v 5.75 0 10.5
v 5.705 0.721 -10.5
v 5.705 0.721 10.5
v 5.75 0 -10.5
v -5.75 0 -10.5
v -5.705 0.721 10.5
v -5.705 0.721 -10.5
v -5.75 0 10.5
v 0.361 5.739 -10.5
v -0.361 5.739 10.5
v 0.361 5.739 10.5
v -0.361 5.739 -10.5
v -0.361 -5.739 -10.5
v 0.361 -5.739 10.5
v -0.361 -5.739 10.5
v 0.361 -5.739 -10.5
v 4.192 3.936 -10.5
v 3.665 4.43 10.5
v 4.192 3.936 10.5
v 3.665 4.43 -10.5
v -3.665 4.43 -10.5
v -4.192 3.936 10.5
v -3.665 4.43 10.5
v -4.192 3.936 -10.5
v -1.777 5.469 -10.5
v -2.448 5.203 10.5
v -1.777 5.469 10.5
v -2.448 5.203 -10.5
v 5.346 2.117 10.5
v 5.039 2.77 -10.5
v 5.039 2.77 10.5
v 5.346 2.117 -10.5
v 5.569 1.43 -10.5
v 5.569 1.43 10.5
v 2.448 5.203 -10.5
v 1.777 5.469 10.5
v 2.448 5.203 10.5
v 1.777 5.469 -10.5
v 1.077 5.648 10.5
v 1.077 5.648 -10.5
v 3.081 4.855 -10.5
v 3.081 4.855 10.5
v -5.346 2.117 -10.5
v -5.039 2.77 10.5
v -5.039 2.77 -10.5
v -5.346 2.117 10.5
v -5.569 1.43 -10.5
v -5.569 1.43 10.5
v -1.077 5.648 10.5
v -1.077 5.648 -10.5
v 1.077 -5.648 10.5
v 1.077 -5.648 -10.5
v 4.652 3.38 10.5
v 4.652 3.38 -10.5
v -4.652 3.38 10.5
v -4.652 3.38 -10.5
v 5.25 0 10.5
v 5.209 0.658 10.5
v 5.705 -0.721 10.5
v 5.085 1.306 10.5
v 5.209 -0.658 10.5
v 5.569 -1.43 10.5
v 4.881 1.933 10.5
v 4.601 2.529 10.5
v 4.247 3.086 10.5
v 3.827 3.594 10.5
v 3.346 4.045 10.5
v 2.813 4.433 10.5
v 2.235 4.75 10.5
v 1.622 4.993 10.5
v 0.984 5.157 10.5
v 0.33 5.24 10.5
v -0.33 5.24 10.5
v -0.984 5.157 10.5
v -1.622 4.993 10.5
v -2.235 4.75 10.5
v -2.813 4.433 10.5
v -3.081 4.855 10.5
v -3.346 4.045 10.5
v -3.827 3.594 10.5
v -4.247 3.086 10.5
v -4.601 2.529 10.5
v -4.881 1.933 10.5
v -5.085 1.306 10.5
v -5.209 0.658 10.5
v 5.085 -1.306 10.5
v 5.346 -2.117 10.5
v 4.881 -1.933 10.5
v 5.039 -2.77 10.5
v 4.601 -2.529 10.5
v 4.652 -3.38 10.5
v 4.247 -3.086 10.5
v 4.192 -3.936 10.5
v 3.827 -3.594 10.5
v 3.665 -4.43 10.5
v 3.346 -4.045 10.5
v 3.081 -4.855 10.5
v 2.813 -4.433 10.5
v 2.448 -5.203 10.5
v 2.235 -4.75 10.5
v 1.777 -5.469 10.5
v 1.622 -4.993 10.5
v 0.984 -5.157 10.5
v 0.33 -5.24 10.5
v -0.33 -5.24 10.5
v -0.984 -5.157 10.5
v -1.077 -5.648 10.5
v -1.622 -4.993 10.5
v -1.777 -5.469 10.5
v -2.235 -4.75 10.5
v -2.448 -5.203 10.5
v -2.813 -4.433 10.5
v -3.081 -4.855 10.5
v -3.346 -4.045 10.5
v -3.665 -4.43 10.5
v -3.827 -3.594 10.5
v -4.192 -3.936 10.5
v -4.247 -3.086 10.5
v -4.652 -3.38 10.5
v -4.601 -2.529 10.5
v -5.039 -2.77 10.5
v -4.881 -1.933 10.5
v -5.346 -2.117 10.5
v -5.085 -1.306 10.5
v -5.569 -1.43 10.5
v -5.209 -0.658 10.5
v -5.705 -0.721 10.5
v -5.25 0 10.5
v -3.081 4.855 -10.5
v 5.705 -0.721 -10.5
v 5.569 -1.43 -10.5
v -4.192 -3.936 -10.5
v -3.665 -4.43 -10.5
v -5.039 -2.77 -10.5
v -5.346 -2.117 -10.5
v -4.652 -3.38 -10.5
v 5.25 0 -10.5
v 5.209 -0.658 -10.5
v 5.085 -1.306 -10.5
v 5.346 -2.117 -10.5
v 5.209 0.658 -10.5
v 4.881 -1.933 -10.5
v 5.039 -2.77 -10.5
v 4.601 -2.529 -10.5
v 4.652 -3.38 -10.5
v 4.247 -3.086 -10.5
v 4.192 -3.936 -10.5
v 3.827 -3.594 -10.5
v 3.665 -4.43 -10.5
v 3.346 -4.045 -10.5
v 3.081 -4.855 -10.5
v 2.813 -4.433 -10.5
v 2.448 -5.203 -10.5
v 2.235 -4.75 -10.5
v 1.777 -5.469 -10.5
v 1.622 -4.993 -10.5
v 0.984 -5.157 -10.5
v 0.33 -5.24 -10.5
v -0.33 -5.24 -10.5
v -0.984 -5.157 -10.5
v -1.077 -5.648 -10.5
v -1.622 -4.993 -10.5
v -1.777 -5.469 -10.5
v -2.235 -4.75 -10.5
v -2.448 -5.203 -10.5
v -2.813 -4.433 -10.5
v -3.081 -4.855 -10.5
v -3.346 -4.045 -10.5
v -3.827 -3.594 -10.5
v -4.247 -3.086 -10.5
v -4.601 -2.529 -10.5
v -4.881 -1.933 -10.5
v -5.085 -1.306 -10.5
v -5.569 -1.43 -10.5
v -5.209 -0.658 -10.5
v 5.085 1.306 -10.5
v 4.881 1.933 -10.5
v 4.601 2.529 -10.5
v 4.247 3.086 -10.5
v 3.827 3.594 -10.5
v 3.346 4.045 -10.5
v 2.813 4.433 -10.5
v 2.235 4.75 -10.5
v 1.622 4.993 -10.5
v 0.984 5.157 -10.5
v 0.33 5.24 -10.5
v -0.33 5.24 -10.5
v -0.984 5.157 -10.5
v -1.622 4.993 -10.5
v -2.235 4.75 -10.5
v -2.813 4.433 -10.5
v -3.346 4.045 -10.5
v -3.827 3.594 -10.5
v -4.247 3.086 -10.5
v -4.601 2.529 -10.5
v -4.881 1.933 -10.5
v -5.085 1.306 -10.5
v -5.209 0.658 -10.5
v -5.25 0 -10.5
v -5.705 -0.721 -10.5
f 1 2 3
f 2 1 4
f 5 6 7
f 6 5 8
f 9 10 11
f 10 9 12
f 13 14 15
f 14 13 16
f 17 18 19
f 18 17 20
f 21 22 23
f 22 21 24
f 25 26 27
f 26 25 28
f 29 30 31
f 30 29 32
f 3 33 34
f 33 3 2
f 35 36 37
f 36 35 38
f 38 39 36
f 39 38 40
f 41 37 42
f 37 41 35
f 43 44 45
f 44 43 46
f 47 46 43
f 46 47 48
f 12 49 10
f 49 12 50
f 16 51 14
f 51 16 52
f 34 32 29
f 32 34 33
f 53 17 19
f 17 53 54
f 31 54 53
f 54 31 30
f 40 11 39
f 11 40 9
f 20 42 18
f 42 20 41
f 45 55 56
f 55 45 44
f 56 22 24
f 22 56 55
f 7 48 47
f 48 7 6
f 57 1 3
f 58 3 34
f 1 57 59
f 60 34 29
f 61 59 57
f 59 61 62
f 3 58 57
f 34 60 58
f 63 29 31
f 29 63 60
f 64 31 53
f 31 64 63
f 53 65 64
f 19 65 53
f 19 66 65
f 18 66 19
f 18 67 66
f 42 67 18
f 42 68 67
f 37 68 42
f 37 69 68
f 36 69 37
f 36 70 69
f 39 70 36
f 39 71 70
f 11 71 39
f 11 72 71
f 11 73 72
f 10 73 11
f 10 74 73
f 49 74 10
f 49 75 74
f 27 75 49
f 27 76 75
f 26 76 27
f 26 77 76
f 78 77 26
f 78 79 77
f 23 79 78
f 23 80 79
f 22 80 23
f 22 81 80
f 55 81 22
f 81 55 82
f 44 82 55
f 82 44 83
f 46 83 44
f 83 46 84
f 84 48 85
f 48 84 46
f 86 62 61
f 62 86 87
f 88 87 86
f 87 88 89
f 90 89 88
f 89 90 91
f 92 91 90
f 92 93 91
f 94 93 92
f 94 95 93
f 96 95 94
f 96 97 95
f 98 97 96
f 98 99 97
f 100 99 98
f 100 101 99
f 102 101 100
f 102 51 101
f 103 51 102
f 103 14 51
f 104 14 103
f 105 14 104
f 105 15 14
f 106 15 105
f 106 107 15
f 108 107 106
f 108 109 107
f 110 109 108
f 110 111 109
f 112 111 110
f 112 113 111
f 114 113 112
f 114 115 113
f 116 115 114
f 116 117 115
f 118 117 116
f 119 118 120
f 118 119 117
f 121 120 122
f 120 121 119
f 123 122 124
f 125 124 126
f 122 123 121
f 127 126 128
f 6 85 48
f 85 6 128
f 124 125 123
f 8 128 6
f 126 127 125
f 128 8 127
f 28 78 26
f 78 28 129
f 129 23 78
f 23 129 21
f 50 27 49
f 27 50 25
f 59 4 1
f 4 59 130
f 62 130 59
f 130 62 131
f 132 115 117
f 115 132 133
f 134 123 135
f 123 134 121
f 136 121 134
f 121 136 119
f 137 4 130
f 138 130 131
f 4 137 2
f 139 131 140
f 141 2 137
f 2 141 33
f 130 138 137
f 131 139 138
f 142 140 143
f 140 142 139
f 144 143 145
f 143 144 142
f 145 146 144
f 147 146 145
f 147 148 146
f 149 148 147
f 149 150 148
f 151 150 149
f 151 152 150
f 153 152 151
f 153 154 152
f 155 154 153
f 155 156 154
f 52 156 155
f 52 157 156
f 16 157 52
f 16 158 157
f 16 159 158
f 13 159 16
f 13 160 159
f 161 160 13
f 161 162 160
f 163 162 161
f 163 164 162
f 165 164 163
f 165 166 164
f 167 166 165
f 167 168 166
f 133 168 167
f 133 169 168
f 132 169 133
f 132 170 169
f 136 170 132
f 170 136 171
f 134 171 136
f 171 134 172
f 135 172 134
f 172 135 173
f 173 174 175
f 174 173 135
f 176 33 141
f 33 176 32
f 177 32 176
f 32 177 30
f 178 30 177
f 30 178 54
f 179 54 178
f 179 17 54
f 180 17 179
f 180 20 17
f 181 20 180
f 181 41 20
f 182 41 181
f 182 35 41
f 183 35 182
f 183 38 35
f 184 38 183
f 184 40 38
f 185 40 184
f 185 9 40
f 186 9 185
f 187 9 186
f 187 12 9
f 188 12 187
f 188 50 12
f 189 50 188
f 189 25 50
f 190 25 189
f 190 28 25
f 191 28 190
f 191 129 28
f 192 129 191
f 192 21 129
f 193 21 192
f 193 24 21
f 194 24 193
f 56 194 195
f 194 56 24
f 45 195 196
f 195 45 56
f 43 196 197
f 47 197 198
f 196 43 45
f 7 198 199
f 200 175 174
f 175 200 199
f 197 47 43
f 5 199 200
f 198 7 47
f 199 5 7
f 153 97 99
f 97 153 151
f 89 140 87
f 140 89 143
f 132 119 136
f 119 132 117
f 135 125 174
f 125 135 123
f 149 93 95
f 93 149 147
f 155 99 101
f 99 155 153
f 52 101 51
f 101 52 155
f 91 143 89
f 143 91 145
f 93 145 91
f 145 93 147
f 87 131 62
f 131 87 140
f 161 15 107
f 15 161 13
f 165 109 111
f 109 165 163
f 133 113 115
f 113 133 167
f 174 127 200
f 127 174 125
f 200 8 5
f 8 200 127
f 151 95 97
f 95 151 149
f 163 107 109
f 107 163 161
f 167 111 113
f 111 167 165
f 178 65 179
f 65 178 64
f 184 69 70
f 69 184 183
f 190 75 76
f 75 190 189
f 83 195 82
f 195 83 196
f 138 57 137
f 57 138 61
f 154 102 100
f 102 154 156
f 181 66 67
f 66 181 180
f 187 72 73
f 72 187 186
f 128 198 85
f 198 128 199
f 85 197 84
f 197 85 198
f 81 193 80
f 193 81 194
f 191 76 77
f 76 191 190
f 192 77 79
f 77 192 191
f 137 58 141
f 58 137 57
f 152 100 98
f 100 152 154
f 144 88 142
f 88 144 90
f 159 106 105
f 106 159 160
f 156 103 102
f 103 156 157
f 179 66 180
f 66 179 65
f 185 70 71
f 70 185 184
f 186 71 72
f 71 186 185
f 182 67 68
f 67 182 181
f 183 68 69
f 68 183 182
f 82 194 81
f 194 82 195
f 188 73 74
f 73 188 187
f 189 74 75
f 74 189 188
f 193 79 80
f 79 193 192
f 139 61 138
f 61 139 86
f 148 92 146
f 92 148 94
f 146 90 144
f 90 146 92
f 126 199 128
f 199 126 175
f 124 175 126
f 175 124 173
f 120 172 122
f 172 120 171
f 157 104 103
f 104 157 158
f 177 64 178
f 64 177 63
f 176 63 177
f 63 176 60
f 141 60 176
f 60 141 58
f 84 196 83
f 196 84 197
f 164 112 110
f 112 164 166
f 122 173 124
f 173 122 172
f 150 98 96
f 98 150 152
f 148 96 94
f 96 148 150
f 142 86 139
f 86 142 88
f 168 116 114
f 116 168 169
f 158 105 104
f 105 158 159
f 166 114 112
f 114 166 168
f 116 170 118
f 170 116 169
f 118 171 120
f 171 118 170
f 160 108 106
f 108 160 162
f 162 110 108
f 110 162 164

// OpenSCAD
$fn = 50;


difference() {
	union() {
		translate(v = [0, 0, -10.5000000000]) {
			cylinder(h = 21, r = 5.7500000000);
		}
	}
	union() {
		translate(v = [0, 0, -100.0000000000]) {
			cylinder(h = 200, r = 5.2500000000);
		}
	}
}
